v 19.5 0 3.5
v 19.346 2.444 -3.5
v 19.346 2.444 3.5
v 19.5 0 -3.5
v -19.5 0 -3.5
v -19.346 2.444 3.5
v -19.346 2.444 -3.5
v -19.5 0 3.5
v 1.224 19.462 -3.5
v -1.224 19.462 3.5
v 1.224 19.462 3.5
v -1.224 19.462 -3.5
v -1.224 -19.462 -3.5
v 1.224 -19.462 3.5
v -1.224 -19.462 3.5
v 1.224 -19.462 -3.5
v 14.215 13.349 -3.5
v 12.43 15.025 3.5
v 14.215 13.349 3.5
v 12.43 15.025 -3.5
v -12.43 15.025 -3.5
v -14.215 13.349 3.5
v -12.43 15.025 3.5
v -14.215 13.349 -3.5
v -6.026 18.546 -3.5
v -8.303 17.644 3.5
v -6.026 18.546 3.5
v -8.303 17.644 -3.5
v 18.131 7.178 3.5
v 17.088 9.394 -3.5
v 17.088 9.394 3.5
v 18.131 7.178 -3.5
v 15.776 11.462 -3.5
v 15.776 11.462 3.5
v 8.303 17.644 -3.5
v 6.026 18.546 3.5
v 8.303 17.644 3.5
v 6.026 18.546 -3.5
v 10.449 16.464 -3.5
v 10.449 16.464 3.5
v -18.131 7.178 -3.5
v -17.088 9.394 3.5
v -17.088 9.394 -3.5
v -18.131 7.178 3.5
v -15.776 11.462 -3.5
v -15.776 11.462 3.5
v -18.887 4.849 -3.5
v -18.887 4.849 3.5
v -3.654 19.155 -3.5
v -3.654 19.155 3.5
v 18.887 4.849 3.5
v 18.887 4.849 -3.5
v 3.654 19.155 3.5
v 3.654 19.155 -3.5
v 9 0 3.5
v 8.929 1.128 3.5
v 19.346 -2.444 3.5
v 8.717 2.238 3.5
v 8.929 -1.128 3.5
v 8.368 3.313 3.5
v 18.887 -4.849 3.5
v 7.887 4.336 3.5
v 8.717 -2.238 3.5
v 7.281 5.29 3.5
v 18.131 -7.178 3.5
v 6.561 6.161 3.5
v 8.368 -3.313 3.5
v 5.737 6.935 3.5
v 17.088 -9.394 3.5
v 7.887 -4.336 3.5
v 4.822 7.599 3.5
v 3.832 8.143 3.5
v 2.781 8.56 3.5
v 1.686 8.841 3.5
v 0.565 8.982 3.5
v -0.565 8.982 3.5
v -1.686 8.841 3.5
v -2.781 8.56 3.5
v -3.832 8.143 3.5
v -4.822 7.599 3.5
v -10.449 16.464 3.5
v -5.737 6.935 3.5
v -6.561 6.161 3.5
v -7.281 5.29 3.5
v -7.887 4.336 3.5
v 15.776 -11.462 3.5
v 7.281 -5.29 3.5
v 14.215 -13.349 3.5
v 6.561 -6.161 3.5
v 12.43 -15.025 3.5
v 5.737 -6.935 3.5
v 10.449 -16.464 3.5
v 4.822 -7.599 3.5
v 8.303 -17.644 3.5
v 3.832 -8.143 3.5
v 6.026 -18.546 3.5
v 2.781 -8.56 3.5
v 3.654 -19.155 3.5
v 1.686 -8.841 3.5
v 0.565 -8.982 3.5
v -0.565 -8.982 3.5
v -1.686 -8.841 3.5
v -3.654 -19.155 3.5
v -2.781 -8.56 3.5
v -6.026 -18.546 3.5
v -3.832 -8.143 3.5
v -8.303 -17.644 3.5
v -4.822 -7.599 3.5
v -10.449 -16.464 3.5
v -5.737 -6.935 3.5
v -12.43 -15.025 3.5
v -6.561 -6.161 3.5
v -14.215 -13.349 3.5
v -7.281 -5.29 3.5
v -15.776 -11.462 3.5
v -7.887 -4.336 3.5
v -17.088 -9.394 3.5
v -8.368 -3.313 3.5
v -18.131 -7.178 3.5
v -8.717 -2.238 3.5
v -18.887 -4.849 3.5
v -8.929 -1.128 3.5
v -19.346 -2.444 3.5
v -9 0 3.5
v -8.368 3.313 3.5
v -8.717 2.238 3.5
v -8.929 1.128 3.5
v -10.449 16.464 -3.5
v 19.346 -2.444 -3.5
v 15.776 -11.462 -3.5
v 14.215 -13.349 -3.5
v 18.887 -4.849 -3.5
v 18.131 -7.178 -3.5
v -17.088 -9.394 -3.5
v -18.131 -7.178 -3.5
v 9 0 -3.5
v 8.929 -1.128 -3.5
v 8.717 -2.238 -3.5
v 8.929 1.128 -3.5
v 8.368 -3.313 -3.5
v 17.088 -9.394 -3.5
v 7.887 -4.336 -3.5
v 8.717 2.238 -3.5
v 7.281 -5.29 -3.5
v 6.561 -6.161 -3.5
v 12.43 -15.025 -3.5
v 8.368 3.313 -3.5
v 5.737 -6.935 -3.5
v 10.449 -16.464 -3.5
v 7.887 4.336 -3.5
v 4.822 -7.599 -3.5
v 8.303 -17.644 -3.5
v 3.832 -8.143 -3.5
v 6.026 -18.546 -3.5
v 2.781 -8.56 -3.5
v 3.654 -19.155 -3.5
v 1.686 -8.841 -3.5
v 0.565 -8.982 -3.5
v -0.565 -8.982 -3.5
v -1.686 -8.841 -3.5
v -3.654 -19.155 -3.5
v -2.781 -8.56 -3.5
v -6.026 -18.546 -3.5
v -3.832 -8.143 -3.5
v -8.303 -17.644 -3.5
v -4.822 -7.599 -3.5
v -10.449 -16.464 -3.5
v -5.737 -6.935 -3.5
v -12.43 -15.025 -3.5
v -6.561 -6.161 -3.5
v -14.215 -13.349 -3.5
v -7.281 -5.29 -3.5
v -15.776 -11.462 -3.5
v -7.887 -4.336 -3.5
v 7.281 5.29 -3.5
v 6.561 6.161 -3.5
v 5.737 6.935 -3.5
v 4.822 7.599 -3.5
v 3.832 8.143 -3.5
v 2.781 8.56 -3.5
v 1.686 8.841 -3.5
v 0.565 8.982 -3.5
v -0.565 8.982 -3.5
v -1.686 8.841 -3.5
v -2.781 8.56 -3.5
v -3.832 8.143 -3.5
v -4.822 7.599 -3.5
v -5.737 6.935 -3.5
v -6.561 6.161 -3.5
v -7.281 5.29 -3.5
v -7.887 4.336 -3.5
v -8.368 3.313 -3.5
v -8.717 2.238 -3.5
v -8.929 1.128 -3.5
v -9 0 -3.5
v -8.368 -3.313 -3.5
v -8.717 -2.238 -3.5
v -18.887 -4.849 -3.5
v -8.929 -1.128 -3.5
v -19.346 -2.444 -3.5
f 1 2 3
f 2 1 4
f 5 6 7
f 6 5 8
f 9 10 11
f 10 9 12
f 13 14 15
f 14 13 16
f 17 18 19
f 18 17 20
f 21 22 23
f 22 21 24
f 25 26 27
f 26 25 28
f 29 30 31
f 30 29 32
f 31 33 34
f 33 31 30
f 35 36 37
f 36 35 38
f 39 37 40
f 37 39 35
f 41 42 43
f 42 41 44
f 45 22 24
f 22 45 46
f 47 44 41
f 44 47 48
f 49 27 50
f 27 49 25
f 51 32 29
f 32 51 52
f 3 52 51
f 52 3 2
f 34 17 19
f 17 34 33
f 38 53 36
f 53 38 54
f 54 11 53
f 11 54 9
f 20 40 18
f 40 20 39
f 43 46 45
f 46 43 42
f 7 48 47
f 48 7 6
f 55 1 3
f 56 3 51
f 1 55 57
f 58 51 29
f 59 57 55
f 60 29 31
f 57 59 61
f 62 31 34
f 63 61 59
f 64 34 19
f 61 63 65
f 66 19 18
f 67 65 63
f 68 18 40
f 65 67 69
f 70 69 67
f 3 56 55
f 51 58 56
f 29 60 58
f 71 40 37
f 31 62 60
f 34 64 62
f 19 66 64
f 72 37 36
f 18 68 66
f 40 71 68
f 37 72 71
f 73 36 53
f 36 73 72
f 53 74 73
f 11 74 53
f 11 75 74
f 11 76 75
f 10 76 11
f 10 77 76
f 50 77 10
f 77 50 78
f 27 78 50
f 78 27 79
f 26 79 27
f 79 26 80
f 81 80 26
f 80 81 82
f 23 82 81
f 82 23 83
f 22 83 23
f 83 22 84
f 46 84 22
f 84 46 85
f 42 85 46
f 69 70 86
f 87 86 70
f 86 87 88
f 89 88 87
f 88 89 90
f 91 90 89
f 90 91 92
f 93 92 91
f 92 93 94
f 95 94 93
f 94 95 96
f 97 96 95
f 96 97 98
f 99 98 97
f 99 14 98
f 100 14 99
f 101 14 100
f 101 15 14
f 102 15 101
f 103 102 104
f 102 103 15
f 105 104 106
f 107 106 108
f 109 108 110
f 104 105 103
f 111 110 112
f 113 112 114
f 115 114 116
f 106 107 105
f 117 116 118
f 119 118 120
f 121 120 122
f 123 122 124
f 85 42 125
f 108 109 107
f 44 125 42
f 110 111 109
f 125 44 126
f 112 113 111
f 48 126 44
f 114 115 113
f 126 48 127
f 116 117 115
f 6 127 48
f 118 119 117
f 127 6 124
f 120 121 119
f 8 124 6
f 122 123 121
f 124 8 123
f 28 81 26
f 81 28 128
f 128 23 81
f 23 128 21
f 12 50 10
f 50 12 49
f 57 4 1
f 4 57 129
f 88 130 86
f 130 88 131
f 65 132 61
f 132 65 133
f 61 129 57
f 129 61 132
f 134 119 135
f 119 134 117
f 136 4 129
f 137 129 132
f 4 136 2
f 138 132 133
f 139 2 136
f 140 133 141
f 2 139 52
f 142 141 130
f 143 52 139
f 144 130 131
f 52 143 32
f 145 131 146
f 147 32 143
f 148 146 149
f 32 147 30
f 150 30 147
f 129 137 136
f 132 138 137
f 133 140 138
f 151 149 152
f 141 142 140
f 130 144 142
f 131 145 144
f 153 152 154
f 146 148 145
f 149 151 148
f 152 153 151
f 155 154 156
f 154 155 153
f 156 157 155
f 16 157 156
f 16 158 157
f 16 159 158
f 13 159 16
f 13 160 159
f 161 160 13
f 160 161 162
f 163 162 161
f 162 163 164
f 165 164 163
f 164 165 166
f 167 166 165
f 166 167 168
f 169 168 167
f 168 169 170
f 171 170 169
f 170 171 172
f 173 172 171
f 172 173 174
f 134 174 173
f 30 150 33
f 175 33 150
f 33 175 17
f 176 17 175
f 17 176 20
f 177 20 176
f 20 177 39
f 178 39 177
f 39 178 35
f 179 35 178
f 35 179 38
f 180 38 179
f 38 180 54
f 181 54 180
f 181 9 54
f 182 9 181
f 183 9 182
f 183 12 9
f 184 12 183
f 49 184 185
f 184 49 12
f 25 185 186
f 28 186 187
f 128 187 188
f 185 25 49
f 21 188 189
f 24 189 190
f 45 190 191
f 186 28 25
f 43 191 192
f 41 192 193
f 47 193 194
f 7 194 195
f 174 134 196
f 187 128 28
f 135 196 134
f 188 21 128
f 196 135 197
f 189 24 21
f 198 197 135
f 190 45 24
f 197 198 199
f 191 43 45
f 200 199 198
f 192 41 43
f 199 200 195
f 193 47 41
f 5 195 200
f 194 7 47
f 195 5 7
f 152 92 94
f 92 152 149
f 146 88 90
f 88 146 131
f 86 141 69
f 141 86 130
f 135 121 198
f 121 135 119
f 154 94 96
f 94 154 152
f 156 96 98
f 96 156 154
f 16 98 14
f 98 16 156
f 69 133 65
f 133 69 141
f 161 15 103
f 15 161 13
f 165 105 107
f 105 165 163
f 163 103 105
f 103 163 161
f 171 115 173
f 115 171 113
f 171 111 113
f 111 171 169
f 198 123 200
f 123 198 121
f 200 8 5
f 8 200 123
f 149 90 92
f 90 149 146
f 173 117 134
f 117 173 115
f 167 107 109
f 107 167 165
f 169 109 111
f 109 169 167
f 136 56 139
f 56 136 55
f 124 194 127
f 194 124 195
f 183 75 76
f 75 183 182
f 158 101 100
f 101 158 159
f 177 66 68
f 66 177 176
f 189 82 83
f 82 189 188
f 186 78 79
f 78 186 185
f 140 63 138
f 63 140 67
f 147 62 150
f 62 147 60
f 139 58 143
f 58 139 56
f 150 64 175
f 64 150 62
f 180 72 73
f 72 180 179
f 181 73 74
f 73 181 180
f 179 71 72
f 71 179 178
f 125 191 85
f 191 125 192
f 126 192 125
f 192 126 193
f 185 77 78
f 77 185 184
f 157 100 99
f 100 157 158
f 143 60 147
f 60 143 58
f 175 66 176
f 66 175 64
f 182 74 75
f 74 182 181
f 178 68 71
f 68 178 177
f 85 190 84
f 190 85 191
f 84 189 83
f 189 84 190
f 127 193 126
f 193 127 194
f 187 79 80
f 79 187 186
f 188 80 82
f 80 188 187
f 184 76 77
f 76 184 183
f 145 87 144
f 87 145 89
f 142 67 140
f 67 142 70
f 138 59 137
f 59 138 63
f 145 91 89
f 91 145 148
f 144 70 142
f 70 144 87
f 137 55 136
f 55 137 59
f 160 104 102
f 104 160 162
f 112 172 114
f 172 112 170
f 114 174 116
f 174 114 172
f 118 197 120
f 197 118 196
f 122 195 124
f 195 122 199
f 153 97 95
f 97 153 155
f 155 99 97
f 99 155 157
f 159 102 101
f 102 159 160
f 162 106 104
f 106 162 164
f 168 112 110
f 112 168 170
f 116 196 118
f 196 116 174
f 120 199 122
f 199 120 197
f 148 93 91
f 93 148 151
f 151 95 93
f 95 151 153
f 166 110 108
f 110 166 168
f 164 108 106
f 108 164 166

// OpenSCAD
$fn = 50;


difference() {
	union() {
		translate(v = [0, 0, -3.5000000000]) {
			cylinder(h = 7, r = 19.5000000000);
		}
	}
	union() {
		translate(v = [0, 0, -100.0000000000]) {
			cylinder(h = 200, r = 9);
		}
	}
}
